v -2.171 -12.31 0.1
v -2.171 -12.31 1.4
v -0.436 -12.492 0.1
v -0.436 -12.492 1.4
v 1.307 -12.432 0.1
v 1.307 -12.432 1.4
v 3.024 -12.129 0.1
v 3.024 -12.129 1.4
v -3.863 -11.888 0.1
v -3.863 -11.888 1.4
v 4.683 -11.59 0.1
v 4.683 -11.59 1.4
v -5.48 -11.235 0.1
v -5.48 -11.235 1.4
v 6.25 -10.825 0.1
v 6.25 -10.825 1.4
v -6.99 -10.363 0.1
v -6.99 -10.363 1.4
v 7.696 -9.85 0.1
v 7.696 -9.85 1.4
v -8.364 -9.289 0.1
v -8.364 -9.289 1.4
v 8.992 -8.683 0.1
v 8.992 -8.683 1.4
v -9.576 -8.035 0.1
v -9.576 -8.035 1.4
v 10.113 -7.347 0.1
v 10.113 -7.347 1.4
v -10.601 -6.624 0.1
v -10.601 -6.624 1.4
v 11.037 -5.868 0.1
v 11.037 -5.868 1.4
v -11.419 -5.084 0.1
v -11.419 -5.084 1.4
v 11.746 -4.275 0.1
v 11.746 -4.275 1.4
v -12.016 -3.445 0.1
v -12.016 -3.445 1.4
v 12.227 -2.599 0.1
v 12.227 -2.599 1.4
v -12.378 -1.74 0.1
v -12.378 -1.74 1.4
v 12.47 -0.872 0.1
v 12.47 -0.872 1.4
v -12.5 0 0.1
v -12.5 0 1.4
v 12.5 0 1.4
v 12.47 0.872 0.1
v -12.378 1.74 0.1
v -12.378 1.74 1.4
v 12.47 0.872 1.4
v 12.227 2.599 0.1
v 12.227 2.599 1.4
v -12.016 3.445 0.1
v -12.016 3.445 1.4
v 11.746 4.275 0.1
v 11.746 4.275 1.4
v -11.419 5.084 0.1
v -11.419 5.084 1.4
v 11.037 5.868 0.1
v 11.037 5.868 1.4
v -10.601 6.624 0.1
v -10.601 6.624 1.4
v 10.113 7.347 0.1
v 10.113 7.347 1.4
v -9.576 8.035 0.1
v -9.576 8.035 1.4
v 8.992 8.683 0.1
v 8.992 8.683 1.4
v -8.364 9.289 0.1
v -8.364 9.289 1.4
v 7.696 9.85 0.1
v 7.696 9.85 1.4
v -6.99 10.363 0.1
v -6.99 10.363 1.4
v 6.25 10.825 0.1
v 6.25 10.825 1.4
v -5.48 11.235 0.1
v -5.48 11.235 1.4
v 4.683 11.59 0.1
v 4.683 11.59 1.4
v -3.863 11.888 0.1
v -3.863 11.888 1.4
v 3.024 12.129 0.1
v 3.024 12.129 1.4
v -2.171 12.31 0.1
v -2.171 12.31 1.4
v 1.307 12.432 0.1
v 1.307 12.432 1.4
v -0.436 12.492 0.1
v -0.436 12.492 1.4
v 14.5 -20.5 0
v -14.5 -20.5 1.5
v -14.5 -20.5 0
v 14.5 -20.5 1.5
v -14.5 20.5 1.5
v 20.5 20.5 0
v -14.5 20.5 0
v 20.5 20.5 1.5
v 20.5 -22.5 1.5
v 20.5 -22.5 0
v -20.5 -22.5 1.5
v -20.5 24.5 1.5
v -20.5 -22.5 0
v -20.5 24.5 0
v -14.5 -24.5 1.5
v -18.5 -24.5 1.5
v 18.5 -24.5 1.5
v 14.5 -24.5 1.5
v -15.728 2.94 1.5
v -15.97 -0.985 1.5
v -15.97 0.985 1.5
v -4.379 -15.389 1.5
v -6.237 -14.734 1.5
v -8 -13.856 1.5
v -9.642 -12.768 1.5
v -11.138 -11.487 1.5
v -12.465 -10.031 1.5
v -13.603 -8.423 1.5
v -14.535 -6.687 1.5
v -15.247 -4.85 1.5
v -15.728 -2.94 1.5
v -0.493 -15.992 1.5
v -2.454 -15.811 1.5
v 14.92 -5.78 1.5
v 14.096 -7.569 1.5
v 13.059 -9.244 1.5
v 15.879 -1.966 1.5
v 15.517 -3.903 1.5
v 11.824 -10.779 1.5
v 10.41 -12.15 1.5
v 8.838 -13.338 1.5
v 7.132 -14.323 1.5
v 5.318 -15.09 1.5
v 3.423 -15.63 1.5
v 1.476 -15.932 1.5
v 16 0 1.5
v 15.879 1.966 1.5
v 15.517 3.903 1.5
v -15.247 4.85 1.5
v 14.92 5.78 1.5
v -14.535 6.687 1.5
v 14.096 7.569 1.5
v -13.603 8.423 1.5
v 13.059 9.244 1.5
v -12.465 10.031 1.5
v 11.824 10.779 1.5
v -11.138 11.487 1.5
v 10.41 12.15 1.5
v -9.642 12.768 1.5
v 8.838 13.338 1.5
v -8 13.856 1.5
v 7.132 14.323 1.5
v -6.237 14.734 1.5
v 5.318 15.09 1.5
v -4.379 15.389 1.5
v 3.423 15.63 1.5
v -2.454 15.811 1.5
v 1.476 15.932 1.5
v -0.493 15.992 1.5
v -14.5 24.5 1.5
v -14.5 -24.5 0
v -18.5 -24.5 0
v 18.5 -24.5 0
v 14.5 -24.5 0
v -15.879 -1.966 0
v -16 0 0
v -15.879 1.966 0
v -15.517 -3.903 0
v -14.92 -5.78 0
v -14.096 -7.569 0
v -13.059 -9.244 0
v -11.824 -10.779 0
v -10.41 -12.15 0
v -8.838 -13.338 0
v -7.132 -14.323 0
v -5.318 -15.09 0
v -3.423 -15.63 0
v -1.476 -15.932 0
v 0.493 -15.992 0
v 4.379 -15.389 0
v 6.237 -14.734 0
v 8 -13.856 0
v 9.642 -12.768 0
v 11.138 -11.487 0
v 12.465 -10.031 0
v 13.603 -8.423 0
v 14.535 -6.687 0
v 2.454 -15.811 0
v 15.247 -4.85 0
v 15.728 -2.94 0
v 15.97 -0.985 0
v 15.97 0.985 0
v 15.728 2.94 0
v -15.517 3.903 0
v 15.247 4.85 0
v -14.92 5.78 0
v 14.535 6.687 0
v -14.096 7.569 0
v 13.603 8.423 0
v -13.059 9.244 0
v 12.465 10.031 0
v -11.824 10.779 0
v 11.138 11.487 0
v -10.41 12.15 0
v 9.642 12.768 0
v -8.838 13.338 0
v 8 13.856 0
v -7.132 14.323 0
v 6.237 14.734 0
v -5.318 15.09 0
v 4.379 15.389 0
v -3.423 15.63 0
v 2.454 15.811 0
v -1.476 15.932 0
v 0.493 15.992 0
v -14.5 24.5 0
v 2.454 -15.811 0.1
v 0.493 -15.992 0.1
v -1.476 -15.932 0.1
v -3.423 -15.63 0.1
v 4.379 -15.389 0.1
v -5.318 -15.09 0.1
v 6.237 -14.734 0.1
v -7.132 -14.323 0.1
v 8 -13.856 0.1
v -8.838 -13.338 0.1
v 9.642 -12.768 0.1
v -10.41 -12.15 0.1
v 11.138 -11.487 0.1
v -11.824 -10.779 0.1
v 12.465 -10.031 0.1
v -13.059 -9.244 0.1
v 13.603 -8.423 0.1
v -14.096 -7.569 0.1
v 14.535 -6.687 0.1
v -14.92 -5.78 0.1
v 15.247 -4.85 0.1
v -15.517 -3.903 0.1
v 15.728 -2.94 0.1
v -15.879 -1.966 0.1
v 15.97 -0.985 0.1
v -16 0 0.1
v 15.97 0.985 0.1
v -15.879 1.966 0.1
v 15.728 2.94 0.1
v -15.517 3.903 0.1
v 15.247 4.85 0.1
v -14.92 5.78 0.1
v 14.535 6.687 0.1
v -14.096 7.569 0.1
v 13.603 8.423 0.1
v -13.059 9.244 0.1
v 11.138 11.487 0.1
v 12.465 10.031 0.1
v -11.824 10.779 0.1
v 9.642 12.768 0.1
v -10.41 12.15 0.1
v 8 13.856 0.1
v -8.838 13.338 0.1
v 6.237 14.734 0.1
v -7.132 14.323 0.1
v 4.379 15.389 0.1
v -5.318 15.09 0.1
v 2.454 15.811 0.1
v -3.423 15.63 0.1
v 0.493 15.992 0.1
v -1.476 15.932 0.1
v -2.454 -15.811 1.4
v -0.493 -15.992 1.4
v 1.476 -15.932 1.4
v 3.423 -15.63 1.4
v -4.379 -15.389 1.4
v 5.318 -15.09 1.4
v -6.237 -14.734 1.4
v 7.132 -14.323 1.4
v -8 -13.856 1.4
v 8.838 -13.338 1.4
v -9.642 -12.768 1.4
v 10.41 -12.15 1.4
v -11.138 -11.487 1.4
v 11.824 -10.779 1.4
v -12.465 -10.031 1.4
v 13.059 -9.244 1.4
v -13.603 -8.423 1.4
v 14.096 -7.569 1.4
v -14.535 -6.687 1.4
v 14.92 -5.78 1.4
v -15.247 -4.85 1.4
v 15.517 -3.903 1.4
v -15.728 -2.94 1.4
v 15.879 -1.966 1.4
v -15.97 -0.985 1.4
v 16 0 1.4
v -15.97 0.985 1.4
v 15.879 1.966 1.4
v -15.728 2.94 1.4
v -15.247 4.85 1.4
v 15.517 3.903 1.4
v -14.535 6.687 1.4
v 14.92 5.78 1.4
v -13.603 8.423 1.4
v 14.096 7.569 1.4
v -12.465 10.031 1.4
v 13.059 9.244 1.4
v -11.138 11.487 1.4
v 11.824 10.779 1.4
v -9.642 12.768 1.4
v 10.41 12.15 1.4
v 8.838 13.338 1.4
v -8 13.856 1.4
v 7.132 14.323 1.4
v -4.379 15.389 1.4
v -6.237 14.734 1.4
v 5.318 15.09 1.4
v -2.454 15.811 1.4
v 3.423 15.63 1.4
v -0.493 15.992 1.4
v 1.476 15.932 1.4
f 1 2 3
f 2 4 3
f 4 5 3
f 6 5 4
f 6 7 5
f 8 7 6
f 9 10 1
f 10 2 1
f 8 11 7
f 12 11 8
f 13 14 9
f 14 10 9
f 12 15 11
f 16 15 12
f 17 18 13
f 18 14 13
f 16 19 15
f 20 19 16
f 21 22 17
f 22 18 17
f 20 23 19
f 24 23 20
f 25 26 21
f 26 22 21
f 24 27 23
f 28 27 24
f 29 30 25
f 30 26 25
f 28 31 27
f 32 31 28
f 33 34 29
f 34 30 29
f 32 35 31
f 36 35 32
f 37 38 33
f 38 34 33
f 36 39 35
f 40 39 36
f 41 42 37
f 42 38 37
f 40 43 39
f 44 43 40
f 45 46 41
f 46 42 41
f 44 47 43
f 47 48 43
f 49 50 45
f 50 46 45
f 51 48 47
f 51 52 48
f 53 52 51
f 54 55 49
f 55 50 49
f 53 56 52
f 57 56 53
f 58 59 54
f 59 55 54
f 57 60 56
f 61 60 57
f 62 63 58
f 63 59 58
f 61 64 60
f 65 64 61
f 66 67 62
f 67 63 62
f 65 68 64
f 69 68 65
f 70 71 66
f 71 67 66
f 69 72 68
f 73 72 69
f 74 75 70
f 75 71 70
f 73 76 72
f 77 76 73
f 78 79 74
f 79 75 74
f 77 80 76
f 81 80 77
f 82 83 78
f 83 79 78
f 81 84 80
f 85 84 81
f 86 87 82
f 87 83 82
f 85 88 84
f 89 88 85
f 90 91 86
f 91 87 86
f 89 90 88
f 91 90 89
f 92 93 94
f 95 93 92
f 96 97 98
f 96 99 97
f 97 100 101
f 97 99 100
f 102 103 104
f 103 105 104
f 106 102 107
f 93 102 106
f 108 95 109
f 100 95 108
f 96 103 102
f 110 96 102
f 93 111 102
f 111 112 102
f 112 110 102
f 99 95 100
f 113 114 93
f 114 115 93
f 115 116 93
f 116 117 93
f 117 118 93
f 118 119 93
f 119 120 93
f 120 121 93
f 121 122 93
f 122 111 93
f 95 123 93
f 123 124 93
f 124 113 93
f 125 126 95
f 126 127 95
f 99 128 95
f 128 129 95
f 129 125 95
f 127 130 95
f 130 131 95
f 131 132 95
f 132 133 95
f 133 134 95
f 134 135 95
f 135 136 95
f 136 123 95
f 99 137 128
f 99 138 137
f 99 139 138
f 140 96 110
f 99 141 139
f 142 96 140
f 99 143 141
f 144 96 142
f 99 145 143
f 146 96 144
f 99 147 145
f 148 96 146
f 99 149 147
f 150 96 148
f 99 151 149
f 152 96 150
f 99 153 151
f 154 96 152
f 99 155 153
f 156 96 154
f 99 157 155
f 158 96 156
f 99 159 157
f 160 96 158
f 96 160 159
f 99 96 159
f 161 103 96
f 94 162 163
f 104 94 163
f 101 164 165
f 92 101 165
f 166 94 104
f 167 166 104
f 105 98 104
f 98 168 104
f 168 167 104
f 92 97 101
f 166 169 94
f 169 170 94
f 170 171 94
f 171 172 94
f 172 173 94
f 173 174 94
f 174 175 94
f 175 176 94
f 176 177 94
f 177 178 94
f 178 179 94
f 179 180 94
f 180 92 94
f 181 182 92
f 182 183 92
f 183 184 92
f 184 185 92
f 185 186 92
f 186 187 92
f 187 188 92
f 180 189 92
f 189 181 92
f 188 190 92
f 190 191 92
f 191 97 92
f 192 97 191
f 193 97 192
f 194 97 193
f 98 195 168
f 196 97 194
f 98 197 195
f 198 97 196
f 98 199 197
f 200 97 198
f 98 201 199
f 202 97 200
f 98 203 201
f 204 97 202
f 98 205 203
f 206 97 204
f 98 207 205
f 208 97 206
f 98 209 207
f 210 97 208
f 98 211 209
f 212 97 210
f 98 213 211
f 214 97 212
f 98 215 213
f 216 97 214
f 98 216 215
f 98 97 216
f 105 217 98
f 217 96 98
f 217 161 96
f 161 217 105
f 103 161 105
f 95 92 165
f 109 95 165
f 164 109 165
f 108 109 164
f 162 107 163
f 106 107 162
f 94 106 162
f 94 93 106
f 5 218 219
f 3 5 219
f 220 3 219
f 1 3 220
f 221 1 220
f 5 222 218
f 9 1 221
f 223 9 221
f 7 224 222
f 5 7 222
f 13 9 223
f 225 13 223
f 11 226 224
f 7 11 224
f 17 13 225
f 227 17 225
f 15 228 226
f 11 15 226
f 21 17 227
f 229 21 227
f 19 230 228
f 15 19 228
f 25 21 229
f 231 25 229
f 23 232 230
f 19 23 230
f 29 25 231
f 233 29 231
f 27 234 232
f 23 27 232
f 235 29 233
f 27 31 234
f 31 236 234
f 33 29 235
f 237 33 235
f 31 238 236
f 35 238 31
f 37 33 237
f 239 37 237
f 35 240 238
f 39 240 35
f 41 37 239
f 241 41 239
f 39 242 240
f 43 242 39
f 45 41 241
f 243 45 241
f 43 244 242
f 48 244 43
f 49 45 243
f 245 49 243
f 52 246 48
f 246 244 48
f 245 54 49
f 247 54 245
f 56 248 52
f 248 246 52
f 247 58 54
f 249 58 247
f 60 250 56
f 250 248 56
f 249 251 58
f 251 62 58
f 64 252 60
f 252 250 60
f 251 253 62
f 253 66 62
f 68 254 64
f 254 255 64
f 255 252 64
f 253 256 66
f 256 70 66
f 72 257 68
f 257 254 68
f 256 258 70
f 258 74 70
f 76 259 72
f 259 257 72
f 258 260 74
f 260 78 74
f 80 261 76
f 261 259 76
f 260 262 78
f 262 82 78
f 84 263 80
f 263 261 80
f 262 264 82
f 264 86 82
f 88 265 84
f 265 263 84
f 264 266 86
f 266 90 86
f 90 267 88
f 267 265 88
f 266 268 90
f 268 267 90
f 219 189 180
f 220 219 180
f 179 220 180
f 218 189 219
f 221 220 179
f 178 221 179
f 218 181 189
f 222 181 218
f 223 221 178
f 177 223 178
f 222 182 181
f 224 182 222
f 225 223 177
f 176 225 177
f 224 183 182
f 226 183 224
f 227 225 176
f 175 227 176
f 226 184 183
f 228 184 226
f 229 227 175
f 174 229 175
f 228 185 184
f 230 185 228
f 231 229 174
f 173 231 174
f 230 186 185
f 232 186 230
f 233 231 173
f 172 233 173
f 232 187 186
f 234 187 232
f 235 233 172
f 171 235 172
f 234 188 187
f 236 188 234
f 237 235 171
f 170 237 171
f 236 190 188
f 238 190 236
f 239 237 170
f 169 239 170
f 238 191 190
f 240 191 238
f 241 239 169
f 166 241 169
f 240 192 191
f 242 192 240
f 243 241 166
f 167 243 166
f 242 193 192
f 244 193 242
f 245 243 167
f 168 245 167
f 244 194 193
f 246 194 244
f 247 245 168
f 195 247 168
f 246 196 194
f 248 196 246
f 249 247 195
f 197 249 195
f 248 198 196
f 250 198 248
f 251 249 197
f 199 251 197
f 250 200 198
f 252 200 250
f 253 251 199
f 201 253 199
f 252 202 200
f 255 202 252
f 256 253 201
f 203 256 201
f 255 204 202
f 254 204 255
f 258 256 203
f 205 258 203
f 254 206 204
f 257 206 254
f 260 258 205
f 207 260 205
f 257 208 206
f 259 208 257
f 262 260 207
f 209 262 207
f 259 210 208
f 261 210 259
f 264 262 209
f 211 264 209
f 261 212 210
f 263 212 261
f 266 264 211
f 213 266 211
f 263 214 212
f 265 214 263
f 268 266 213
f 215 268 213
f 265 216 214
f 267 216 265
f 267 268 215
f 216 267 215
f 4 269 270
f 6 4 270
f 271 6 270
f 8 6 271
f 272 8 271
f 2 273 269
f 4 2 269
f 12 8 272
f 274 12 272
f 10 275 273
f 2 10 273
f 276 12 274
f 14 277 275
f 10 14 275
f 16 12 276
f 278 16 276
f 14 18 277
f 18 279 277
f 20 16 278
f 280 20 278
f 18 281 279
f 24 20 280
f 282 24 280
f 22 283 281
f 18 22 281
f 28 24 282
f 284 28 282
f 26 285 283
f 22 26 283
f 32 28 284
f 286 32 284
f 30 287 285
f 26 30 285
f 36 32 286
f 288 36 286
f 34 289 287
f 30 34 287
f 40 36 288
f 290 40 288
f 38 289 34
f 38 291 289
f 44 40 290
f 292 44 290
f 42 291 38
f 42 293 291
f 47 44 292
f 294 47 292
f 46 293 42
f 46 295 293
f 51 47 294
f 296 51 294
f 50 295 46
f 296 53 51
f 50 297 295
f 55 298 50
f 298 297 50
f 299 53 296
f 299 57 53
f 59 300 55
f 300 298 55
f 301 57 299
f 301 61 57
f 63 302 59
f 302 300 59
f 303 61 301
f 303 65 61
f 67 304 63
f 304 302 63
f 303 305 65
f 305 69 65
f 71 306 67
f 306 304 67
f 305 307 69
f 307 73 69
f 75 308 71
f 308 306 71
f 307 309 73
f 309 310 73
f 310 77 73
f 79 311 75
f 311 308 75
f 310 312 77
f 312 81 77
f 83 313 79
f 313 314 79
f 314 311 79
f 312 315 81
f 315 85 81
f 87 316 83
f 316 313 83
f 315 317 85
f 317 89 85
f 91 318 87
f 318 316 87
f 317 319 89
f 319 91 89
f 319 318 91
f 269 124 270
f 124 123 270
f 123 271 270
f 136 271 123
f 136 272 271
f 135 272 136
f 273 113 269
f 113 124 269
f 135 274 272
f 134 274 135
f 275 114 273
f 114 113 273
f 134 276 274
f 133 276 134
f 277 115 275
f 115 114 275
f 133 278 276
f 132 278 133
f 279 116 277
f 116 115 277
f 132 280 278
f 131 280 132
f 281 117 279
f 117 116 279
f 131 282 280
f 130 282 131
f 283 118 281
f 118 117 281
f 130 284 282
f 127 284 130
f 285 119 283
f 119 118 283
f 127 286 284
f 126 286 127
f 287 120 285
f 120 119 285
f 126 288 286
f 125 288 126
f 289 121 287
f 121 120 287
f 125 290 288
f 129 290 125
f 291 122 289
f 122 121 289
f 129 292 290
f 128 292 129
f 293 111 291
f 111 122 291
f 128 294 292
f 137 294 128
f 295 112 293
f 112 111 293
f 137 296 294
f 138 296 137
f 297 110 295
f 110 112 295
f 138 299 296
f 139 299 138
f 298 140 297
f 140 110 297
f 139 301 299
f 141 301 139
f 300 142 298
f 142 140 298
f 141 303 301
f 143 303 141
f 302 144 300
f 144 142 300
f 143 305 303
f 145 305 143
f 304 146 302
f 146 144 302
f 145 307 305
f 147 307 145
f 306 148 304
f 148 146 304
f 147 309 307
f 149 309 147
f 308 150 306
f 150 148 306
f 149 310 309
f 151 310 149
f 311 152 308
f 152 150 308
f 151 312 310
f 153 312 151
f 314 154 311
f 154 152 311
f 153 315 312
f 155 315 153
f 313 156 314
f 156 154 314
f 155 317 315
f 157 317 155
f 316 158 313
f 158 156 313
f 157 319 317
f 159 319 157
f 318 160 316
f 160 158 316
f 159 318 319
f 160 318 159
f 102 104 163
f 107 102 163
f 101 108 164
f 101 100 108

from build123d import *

# Parameters (mm, degrees)
ESQUISSE1_W             = 41
ESQUISSE1_H             = 41
BOSS_EXTRU_1_DEPTH      = 1.5
ESQUISSE2_W             = 6
ESQUISSE2_H             = 4
BOSS_EXTRU_2_DEPTH      = 1.5
ESQUISSE3_R             = 12.5
ENL_V_MAT_EXTRU_1_DEPTH = 2.5
ESQUISSE4_R             = 16
ENL_V_MAT_EXTRU_2_DEPTH = 0.1
ESQUISSE5_R             = 16
ENL_V_MAT_EXTRU_3_DEPTH = 0.1
CHANFREIN1_SIZE         = 2
CHANFREIN2_SIZE         = 2


with BuildPart() as part:
    # Esquisse1 → Boss.-Extru.1 (new body)
    with BuildSketch(Plane.XY):
        Rectangle(ESQUISSE1_W, ESQUISSE1_H)
    extrude(amount=BOSS_EXTRU_1_DEPTH)

    # Esquisse2 → Boss.-Extru.2 (add)
    with BuildSketch(Plane(origin=(0, 0, 0), x_dir=(-1, 0, 0), z_dir=(0, 0, -1))):
        with Locations((17.5, 22.5)):
            Rectangle(ESQUISSE2_W, ESQUISSE2_H)
        with Locations((-17.5, -22.5)):
            Rectangle(ESQUISSE2_W, ESQUISSE2_H)
        with Locations((17.5, -22.5)):
            Rectangle(ESQUISSE2_W, ESQUISSE2_H)
    extrude(amount=-BOSS_EXTRU_2_DEPTH)

    # Esquisse3 → Enlèv. mat.-Extru.1 (cut, through all)
    with BuildSketch(Plane(origin=(0, 0, 0), x_dir=(-1, 0, 0), z_dir=(0, 0, -1))):
        Circle(ESQUISSE3_R)
    extrude(amount=-ENL_V_MAT_EXTRU_1_DEPTH, mode=Mode.SUBTRACT)

    # Esquisse4 → Enlèv. mat.-Extru.2 (cut)
    with BuildSketch(Plane(origin=(0, 0, 0), x_dir=(-1, 0, 0), z_dir=(0, 0, -1))):
        Circle(ESQUISSE4_R)
    extrude(amount=-ENL_V_MAT_EXTRU_2_DEPTH, mode=Mode.SUBTRACT)

    # Esquisse5 → Enlèv. mat.-Extru.3 (cut)
    with BuildSketch(Plane.XY.offset(1.5)):
        Circle(ESQUISSE5_R)
    extrude(amount=-ENL_V_MAT_EXTRU_3_DEPTH, mode=Mode.SUBTRACT)

    # Chanfrein1
    chanfrein1_edges = [part.edges().sort_by_distance(p)[0] for p in [
        (-20.5, -24.5, 0.75),
    ]]
    chamfer(chanfrein1_edges, length=CHANFREIN1_SIZE)

    # Chanfrein2
    chanfrein2_edges = [part.edges().sort_by_distance(p)[0] for p in [
        (20.5, -24.5, 0.75),
    ]]
    chamfer(chanfrein2_edges, length=CHANFREIN2_SIZE)


solid = part.part
